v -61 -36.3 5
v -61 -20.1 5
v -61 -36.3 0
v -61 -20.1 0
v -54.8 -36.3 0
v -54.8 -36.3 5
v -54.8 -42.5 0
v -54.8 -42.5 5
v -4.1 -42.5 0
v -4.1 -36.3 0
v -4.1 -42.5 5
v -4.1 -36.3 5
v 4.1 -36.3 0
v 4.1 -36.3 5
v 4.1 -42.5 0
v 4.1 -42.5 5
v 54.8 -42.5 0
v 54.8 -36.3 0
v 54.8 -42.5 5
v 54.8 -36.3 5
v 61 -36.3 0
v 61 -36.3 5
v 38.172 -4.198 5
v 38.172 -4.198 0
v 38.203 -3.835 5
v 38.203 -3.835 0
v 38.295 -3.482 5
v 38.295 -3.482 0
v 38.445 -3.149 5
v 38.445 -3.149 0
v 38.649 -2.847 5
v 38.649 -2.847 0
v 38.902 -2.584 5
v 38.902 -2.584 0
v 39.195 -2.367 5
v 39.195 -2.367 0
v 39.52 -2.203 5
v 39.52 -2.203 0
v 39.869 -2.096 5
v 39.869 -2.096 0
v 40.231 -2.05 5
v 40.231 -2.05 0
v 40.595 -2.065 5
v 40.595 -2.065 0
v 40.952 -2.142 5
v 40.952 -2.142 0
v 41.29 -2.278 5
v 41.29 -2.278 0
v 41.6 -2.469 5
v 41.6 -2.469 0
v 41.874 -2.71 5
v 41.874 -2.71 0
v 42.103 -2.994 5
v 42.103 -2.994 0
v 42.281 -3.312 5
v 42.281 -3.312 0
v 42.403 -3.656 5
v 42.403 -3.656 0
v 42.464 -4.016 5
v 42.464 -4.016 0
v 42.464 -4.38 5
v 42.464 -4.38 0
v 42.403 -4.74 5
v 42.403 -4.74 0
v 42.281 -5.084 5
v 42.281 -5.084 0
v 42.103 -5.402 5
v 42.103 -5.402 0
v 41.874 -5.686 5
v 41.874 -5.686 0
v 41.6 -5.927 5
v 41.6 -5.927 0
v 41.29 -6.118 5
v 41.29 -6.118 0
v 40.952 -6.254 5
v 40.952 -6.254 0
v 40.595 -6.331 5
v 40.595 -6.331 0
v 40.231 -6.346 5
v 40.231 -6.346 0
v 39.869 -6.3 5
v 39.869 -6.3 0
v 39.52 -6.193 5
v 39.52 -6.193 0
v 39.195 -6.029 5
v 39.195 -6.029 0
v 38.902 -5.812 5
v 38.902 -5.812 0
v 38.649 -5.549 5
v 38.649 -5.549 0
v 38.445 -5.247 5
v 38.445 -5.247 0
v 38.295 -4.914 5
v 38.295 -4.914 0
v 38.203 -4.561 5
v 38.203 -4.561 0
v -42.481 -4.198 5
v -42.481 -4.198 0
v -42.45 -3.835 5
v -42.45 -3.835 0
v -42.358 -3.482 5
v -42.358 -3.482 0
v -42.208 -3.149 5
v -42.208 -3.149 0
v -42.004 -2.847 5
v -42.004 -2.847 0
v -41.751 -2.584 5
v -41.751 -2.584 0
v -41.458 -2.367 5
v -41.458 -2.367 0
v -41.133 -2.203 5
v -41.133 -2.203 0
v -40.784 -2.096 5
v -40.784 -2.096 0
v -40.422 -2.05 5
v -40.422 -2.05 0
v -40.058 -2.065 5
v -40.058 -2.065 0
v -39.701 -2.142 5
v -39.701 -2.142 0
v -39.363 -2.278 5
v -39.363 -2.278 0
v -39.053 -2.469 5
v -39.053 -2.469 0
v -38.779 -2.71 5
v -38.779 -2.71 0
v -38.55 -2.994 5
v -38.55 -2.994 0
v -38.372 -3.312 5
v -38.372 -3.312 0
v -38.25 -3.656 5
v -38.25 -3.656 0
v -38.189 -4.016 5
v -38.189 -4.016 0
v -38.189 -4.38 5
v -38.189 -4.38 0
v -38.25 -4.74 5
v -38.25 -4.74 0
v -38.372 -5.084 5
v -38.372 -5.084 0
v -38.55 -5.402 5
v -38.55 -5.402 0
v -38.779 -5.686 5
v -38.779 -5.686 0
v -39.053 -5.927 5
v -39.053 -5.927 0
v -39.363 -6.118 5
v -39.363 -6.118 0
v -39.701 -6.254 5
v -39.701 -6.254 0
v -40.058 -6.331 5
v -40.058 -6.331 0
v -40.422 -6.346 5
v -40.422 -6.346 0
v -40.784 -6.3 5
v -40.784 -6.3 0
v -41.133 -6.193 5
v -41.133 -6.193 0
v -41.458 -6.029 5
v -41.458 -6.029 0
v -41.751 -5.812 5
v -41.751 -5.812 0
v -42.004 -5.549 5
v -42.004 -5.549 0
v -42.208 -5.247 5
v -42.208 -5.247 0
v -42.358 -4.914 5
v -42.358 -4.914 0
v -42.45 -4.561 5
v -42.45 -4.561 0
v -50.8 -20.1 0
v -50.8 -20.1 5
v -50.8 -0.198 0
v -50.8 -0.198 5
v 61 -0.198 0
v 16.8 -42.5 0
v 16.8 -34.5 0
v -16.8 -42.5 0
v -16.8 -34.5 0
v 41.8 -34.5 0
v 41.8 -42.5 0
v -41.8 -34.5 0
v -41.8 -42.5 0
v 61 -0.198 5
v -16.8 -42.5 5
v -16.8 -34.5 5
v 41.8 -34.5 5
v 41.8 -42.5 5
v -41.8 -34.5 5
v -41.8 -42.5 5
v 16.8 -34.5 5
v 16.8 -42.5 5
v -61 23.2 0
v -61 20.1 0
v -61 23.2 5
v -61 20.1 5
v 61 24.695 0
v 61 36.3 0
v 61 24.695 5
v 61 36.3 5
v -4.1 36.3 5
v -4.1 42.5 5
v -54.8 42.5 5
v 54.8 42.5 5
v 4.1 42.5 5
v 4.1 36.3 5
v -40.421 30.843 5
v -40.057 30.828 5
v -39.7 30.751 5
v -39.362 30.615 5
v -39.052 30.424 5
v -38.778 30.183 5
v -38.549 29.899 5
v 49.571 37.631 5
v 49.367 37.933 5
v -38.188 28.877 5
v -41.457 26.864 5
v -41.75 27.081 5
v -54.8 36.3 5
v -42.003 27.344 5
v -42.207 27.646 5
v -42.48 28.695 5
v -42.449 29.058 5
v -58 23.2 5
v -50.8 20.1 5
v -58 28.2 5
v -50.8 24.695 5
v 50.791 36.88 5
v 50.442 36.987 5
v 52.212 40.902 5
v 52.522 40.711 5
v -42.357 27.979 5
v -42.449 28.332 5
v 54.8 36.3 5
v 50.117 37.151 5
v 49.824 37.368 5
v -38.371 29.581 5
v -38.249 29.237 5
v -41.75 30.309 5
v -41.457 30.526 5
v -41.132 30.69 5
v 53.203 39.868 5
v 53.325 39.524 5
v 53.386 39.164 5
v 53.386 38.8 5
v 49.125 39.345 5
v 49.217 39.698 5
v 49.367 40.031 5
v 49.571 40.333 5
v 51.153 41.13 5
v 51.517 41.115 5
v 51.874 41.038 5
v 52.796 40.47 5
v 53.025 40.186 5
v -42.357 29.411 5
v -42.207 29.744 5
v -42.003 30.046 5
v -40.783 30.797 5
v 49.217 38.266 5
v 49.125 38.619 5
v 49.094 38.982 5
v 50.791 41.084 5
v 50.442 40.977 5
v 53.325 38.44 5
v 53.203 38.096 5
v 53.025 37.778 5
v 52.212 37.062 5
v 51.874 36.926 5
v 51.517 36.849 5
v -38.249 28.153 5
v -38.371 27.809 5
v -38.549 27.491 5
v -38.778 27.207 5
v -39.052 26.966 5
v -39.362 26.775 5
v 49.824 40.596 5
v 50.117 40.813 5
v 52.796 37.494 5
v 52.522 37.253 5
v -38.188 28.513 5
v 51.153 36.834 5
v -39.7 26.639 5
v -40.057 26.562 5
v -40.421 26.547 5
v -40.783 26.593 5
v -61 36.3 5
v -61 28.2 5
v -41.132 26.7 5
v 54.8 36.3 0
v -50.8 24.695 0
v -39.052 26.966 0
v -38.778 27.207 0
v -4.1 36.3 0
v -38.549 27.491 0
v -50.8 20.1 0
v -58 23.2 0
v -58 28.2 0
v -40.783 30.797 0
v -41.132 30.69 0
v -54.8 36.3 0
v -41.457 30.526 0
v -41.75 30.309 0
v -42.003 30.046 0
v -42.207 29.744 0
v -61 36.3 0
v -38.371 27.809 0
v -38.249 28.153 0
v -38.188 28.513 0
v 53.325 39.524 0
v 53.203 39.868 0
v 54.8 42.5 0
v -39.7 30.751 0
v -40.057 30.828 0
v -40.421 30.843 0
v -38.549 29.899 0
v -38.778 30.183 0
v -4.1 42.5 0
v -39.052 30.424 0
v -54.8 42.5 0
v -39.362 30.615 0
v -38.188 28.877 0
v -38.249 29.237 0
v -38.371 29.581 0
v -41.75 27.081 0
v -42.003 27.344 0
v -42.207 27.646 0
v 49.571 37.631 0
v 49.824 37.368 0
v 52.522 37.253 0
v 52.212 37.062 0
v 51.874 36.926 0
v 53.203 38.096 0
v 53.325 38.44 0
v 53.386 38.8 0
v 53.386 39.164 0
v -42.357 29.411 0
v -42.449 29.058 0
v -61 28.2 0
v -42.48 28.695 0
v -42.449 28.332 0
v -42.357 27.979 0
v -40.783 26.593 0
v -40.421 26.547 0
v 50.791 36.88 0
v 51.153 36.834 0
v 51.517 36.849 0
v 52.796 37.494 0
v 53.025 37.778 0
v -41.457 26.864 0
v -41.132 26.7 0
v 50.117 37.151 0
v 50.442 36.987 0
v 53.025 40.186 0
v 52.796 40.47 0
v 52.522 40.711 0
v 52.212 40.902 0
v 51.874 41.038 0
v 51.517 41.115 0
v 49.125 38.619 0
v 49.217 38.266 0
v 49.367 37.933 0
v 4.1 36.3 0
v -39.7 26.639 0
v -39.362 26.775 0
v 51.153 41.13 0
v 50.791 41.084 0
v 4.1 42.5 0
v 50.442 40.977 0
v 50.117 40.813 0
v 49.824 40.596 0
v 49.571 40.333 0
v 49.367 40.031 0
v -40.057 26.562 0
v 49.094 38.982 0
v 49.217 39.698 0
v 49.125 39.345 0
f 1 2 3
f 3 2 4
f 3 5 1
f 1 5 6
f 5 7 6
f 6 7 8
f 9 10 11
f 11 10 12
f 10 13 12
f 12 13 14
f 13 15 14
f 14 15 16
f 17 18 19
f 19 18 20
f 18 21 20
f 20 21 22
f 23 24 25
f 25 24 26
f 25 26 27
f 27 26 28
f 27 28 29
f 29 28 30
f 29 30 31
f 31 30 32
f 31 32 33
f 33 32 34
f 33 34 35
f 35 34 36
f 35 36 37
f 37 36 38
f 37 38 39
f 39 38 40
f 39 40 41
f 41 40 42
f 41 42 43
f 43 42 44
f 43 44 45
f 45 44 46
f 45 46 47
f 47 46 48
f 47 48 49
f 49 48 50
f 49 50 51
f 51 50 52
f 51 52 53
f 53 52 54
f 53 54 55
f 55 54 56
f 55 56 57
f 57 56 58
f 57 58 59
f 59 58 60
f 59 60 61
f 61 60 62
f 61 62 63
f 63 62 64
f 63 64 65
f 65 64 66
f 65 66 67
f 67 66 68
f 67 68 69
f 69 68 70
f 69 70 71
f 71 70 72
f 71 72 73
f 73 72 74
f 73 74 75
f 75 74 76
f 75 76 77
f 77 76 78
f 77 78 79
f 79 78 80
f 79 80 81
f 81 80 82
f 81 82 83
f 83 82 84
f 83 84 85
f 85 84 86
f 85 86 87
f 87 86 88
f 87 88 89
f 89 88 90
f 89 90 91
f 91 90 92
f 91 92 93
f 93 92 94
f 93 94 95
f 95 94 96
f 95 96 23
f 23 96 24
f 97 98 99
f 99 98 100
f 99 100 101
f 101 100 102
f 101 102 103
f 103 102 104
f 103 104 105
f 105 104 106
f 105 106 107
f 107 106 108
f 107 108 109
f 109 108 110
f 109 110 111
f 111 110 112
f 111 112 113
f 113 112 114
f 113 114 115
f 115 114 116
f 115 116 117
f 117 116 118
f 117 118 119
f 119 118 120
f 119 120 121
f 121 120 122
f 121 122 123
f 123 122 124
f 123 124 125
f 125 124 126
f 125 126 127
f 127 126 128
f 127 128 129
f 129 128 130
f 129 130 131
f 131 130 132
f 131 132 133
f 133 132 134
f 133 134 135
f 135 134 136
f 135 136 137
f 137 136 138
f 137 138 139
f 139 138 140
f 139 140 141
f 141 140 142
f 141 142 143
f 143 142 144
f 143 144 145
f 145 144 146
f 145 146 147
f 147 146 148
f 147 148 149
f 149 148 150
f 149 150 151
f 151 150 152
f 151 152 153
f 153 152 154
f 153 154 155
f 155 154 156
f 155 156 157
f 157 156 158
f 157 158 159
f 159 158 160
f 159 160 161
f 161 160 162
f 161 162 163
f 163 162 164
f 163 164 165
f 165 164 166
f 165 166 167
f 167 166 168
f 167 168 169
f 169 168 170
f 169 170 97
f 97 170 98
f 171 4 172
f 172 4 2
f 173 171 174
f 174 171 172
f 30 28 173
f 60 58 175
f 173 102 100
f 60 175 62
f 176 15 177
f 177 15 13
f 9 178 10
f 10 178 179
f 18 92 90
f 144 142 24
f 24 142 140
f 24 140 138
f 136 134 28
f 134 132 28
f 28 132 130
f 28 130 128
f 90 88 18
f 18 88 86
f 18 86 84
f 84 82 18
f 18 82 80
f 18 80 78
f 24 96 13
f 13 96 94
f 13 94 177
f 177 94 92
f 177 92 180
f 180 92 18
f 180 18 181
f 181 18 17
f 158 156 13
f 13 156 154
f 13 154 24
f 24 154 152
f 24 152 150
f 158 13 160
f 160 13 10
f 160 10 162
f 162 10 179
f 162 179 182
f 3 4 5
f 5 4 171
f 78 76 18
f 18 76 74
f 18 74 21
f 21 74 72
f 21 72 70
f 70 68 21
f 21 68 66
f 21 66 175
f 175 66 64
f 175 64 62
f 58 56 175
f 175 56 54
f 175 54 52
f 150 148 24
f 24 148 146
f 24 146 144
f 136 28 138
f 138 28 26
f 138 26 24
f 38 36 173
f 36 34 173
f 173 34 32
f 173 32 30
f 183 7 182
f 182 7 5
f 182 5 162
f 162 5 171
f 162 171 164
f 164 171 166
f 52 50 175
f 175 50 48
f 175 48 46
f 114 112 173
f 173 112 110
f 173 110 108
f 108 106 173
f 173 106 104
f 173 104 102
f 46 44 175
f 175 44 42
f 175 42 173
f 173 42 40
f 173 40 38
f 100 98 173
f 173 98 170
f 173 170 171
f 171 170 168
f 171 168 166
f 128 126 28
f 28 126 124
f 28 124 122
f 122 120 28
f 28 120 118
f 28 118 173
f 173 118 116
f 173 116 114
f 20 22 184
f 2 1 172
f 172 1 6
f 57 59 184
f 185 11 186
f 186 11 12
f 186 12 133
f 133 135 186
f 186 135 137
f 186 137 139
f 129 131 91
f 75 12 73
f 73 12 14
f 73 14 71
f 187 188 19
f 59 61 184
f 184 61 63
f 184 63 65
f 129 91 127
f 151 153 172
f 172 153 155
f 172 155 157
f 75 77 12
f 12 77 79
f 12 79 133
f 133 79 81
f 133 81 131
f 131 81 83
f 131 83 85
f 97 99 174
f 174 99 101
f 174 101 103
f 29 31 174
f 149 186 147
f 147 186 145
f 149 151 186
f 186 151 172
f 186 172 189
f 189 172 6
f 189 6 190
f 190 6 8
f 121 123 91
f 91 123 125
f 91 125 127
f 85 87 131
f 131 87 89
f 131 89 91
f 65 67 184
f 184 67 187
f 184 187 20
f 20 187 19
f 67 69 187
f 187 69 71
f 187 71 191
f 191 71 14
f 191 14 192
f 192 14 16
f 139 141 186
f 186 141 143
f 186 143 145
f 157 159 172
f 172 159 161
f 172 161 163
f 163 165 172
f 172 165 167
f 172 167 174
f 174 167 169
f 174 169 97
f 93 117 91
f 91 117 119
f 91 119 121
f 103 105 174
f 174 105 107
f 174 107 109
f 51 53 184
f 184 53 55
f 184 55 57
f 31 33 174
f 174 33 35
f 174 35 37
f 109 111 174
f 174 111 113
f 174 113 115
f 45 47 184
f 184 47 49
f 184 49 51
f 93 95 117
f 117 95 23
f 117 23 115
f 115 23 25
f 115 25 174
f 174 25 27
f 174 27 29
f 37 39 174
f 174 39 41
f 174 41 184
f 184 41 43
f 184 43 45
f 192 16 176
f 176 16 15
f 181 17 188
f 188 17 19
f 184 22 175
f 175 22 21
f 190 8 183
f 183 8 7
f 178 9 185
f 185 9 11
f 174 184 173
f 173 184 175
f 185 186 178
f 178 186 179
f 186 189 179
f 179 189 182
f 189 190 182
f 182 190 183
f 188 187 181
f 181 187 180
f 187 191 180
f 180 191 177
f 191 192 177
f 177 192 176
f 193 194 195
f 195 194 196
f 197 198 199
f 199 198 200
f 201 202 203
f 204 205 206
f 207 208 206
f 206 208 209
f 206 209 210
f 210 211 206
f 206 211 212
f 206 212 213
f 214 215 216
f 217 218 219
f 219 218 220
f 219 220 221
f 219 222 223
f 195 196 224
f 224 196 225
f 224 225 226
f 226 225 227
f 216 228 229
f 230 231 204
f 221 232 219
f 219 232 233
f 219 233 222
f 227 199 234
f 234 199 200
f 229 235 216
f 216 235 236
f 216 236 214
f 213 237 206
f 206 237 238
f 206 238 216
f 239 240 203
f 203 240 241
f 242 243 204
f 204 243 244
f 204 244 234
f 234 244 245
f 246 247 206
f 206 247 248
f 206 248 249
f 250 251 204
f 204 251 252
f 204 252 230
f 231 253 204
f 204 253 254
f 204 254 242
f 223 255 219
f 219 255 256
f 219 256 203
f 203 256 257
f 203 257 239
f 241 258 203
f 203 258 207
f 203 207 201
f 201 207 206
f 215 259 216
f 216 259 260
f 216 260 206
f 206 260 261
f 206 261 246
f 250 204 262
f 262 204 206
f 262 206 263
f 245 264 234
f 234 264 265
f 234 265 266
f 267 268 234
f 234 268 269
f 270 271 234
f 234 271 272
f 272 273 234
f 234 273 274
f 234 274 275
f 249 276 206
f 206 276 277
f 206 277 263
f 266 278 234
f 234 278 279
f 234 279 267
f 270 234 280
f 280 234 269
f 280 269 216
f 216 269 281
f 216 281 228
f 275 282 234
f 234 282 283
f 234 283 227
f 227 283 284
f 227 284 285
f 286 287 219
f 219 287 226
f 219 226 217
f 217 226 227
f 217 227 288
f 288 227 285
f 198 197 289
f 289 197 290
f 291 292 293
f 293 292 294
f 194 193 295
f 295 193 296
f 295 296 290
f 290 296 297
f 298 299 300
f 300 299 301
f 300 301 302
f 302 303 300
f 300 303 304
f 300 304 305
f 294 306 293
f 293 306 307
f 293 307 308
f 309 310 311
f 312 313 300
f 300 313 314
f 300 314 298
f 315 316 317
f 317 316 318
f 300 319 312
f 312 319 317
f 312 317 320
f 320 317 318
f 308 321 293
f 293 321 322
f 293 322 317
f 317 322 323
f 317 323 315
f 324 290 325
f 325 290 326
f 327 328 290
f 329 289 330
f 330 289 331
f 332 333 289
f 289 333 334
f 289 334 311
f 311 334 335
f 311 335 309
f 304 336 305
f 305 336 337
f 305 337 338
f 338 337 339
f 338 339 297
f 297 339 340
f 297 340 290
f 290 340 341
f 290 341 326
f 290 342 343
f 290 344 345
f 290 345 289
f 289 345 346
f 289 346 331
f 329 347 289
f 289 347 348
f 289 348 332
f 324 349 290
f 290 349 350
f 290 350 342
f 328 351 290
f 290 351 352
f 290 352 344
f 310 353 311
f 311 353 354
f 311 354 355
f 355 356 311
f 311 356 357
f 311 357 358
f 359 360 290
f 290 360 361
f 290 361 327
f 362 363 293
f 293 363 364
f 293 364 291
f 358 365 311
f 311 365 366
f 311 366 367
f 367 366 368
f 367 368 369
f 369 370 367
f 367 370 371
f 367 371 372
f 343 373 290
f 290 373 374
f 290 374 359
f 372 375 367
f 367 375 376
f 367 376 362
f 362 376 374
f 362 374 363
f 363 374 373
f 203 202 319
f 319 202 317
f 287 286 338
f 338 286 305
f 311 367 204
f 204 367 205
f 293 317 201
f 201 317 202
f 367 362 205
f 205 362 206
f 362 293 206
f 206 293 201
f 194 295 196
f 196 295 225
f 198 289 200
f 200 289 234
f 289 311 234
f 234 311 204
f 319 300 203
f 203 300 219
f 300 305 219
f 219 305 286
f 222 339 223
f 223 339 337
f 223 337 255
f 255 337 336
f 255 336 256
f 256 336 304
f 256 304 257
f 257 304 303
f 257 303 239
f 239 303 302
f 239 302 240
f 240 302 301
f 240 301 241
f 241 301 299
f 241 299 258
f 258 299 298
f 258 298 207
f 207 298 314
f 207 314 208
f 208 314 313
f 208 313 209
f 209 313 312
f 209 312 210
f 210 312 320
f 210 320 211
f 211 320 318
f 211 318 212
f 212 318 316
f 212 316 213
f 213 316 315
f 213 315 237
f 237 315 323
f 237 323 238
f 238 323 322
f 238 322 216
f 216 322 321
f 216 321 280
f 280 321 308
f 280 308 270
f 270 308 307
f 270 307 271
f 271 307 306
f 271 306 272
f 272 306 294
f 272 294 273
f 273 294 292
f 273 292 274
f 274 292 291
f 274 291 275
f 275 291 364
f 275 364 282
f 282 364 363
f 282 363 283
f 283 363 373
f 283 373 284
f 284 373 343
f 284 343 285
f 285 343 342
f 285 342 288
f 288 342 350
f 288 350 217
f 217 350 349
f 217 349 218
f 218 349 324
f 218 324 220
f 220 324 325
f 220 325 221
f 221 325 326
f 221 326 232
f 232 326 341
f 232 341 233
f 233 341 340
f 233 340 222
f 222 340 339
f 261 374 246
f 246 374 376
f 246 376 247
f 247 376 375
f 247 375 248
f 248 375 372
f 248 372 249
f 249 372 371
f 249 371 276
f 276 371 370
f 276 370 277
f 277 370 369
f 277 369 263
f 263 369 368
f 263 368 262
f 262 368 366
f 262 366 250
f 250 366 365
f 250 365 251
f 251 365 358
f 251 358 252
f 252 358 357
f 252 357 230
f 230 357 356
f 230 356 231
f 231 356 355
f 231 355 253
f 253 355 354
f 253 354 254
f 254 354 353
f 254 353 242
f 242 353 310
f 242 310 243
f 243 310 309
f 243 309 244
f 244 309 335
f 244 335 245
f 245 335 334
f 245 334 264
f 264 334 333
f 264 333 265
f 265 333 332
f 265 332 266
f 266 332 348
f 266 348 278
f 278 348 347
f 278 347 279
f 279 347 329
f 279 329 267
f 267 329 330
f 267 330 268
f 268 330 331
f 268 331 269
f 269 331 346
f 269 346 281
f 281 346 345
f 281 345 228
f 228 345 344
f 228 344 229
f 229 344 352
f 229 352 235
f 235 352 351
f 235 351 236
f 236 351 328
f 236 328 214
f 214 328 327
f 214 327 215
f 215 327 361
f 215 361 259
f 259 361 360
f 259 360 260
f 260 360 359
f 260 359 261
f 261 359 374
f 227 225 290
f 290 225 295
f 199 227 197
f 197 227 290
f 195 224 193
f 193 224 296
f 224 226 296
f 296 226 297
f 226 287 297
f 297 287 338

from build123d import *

# Parameters (mm, degrees)
SKETCH_1_W          = 122
SKETCH_1_H          = 85
EXTRUDE_1_DEPTH     = 5
SKETCH_2_W          = 8.2
SKETCH_2_H          = 6.2
SKETCH_2_W_2        = 6.2
SKETCH_2_W_3        = 10.2
SKETCH_2_H_2        = 40.2
CUT_EXTRUDE_1_DEPTH = 5
SKETCH_6_R          = 2.15
CUT_EXTRUDE_2_DEPTH = 5
SKETCH_8_W          = 111.8
SKETCH_8_H          = 24.893
SKETCH_8_W_2        = 25
SKETCH_8_H_2        = 8
CUT_EXTRUDE_5_DEPTH = 5
SKETCH_9_W          = 3
SKETCH_9_H          = 5
CUT_EXTRUDE_6_DEPTH = 5


with BuildPart() as part:
    # 草图1 → 凸台-拉伸1 (new body)
    with BuildSketch(Plane.XY):
        Rectangle(SKETCH_1_W, SKETCH_1_H)
    extrude(amount=EXTRUDE_1_DEPTH)

    # 草图2 → 切除-拉伸1 (cut)
    with BuildSketch(Plane.XY.offset(5)):
        with Locations((0, 39.4)):
            Rectangle(SKETCH_2_W, SKETCH_2_H)
        with Locations((-57.9, 39.4)):
            Rectangle(SKETCH_2_W_2, SKETCH_2_H)
        with Locations((57.9, 39.4)):
            Rectangle(SKETCH_2_W_2, SKETCH_2_H)
        with Locations((57.9, -39.4)):
            Rectangle(SKETCH_2_W_2, SKETCH_2_H)
        with Locations((0, -39.4)):
            Rectangle(SKETCH_2_W, SKETCH_2_H)
        with Locations((-57.9, -39.4)):
            Rectangle(SKETCH_2_W_2, SKETCH_2_H)
        with Locations((-55.9, 0)):
            Rectangle(SKETCH_2_W_3, SKETCH_2_H_2)
    extrude(amount=-CUT_EXTRUDE_1_DEPTH, mode=Mode.SUBTRACT)

    # 草图6 → 切除-拉伸2 (cut)
    with BuildSketch(Plane(origin=(0, 0, 0), x_dir=(-1, 0, 0), z_dir=(0, 0, -1))):
        with Locations((-51.244, 38.982)):
            Circle(SKETCH_6_R)
        with Locations((-40.322, -4.198)):
            Circle(SKETCH_6_R)
        with Locations((40.33, 28.695)):
            Circle(SKETCH_6_R)
        with Locations((40.331, -4.198)):
            Circle(SKETCH_6_R)
    extrude(amount=-CUT_EXTRUDE_2_DEPTH, mode=Mode.SUBTRACT)

    # 草图8 → 切除-拉伸5 (cut)
    with BuildSketch(Plane(origin=(0, 0, 0), x_dir=(-1, 0, 0), z_dir=(0, 0, -1))):
        with Locations((-5.1, 12.2485)):
            Rectangle(SKETCH_8_W, SKETCH_8_H)
        with Locations((-29.3, -38.5)):
            Rectangle(SKETCH_8_W_2, SKETCH_8_H_2)
        with Locations((29.3, -38.5)):
            Rectangle(SKETCH_8_W_2, SKETCH_8_H_2)
    extrude(amount=-CUT_EXTRUDE_5_DEPTH, mode=Mode.SUBTRACT)


with BuildPart() as cut_extrude_5_piece_1:
    # of the separate pieces the step leaves, piece 1, a body of its own (cut_extrude_5_pieces)
    add(part.part.solids().sort_by_distance((-50.8, -0.198, 0))[0])


with BuildPart() as cut_extrude_5_piece_2:
    # of the separate pieces the step leaves, piece 2, a body of its own (cut_extrude_5_pieces)
    add(part.part.solids().sort_by_distance((-54.8, 42.5, 0))[0])

    # 草图9 → 切除-拉伸6 (cut)
    with BuildSketch(Plane(origin=(0, 0, 0), x_dir=(-1, 0, 0), z_dir=(0, 0, -1))):
        with Locations((59.5, 25.7)):
            Rectangle(SKETCH_9_W, SKETCH_9_H)
    extrude(amount=-CUT_EXTRUDE_6_DEPTH, mode=Mode.SUBTRACT)


solid = Compound([cut_extrude_5_piece_1.part, cut_extrude_5_piece_2.part])
